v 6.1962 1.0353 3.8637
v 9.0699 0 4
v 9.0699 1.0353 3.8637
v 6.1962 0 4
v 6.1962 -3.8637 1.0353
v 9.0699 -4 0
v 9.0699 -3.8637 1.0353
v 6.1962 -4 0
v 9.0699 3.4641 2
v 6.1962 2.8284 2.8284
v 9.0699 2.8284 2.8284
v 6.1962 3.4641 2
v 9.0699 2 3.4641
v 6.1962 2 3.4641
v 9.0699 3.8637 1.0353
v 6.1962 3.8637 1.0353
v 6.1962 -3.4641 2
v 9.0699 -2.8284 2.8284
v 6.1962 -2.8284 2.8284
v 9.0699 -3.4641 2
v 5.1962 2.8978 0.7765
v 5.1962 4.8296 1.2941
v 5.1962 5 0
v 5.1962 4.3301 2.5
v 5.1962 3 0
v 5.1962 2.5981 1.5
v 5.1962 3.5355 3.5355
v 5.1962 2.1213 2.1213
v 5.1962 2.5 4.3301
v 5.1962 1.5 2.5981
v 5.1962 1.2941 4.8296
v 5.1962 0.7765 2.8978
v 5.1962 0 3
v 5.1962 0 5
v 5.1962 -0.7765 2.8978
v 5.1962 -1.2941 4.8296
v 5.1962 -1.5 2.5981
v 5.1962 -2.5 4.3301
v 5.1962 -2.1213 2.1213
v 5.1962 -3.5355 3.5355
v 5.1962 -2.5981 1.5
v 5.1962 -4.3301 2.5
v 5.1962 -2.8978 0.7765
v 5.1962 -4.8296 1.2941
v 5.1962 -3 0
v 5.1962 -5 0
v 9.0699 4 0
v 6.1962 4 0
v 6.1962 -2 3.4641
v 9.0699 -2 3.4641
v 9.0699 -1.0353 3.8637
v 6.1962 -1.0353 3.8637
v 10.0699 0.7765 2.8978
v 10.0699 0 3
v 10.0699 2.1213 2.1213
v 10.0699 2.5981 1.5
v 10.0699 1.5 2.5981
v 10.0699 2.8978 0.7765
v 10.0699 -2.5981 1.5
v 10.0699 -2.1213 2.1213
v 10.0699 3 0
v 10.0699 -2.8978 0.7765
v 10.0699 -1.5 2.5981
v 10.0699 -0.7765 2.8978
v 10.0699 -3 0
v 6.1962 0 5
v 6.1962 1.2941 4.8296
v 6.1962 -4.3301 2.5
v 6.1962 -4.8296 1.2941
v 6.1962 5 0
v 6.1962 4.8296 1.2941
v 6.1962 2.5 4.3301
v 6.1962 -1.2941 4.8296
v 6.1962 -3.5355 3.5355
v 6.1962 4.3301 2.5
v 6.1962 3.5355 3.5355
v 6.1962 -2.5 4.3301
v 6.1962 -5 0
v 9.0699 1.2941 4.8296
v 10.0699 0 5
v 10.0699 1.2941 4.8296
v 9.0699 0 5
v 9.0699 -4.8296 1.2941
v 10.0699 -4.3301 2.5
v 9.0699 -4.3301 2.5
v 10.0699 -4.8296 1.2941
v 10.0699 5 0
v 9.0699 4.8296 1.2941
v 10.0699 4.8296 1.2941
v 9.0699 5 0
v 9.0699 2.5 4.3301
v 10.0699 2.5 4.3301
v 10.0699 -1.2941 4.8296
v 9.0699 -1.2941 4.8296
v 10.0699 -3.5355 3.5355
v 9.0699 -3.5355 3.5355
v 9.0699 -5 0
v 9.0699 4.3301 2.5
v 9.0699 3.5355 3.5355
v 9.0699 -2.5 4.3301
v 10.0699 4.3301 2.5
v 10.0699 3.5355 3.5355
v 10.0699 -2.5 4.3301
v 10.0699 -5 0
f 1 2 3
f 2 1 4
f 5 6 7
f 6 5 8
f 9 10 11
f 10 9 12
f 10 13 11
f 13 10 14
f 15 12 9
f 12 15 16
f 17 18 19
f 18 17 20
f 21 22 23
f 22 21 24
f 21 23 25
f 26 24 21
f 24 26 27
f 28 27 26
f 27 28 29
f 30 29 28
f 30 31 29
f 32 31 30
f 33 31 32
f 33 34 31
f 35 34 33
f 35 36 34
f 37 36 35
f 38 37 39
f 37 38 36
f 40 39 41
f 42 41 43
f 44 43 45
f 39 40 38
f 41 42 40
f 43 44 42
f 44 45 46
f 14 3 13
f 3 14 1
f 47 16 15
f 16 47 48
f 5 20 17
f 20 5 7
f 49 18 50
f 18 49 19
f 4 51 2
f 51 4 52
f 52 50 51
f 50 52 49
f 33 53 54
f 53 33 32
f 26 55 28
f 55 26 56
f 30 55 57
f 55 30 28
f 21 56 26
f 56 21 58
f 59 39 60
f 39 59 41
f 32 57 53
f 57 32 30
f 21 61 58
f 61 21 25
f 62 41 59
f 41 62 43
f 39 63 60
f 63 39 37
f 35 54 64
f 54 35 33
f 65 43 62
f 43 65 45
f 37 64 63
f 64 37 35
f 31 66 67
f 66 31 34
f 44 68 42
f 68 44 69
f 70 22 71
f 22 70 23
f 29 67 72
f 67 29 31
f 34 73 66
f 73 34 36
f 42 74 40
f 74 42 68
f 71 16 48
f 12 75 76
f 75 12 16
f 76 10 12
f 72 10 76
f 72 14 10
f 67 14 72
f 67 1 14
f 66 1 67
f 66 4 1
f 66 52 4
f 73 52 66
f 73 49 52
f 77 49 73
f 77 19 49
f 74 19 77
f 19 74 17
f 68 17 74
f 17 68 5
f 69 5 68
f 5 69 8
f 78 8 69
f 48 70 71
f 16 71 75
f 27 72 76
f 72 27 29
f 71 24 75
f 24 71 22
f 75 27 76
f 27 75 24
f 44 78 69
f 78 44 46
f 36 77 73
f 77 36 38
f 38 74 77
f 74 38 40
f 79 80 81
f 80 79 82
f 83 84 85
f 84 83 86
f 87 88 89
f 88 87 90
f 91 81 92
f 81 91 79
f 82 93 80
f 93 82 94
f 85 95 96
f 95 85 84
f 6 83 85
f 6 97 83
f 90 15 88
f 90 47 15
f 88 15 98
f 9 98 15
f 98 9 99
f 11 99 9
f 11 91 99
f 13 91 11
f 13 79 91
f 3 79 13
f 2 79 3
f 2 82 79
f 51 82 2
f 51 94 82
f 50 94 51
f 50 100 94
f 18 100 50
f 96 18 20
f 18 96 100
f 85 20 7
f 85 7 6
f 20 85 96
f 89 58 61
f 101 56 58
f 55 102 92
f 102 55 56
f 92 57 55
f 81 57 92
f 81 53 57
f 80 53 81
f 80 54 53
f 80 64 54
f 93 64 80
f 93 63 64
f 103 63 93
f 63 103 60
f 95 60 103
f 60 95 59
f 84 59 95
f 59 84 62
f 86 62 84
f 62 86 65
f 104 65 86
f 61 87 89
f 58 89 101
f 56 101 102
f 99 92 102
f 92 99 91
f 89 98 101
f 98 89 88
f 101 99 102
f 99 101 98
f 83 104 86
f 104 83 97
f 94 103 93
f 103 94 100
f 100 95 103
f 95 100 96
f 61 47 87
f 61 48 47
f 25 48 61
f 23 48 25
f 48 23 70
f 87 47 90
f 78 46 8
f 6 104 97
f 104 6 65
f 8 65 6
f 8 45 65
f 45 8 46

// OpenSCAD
// file: ../build_environments.scad
// build_environments.scad: modules to build level sections
//

module pool(diameter=10.0, wall_height=2.0, step_width=3.0, connections=[])
{
    difference() {
        union() {
        difference() {
            cylinder(h=0.5,r1=diameter+step_width,r2=diameter+step_width,$fn=48);
            translate([0,0,-0.1])
                cylinder(h=0.7,r1=diameter,r2=diameter,$fn=48);
        }
        difference() {
            cylinder(h=wall_height,r1=diameter+step_width+1.0,r2=diameter+step_width+1.0,$fn=48);
            translate([0,0,-0.1])
                cylinder(h=wall_height+0.2,r1=diameter+step_width,r2=diameter+step_width,$fn=48);
        }
        }
    
        for (c = connections)
        {
            rotate([0,90,0]) {
                angle = atan2(c[1],c[0]);
                rotate([-angle,0,0]) {
                    cylinder(h=diameter+5.0,r1=c[2],r2=c[2],$fn=48);
                }
            }
        }
    }
}

module straight(length=10.0, width=2.0, dy1=0.0, dy2=0.0, dz=0.0)
{
    dims = [0, 0, 0, 0, 0, (dz/length)];
    matrix = [
        [ 1, dims[0], dims[1], 0 ],
        [ dims[2], 1, dims[4], 0 ],
        [ dims[5], dims[3], 1, 0 ],
        [ 0, 0, 0, 1 ]
    ];
    multmatrix(matrix)
    difference() {
        translate([dy1,0,0])
        union() {
            rotate([0,90,0]) {
                difference() {
                    cylinder(h=(length-dy1-dy2),r1=width+1.0,r2=width+1.0,$fn=24);
                    translate([0,0,-0.1])
                        cylinder(h=(length-dy1-dy2+0.2),r1=width,r2=width,$fn=24);
                }
                difference() {
                    cylinder(h=1.0,r1=width+2.0,r2=width+2.0,$fn=24);
                    translate([0,0,-0.1])
                        cylinder(h=1.2,r1=width,r2=width,$fn=24);
                }
                translate([0,0,(length-dy1-dy2)-1.0]) {
                    difference() {
                        cylinder(h=1.0,r1=width+2.0,r2=width+2.0,$fn=24);
                        translate([0,0,-0.1])
                            cylinder(h=1.2,r1=width,r2=width,$fn=24);
                    }
                }
            }
        }
        translate([0,0,-(2*width+4.0)/2])
            cube([3*length,3*length,2*width+4.0],center=true);
    }
}

module curve(p0=[0,0], center=[0,0], dir=1, angle=0.0, width=2.0)
{
    radius = sqrt((p0[0]-center[0])*(p0[0]-center[0]) + (p0[1]-center[1])*(p0[1]-center[1]));
    if (dir == 0) {
        difference() {
            rotate([0,0,-90])
            difference() {
                rotate_extrude(angle = angle, convexity = 10, $fn=32)
                    translate([radius, 0, 0])
                        circle(r = width+1.0,$fn=24);
                rotate([0,0,-1.0])
                    rotate_extrude(angle = angle+2.0, convexity = 10, $fn=32)
                        translate([radius, 0, 0])
                            circle(r = width,$fn=24);
            }
            translate([0,0,-(2*width+4.0)/2])
                cube([5*radius,5*radius,2*width+4.0],center=true);
        }
    }
    else {
        difference() {
            rotate([0,0,90])
            difference() {
                rotate_extrude(angle = -angle, convexity = 10, $fn=32)
                    translate([radius, 0, 0])
                        circle(r = width+1.0,$fn=24);
                rotate([0,0,1.0])
                    rotate_extrude(angle = -angle-2.0, convexity = 10, $fn=32)
                        translate([radius, 0, 0])
                            circle(r = width,$fn=24);
            }
            translate([0,0,-(2*width+4.0)/2])
                cube([5*radius,5*radius,2*width+4.0],center=true);
        }
    }

}

// test pool
//pool(diameter=12.0000, wall_height=3.0000, step_width=3.0000, connections=[[0.0000,-26.0000,2.0000], [23.6074,0.0000,2.0000]]);

// test straight, slope
//straight(length=26.0000, width=2.0000, dy1=11.8322, dy2=6.7082, dz=0.0000);
//straight(length=29.1549, width=12.0000, dy1=0.0000, dy2=0.0000, dz=-15.0000);

// test curve
//curve(p0=[23.6074, 0.0000], center=[23.6074, 5.0000], dir=0, angle=60.1011, width=2.0000);
//curve(p0=[33.6426, 12.4219], center=[37.9771, 9.9295], dir=1, angle=120.4627, width=2.0000);
// main file
use <../build_environments.scad>;
straight(length=10.0699, width=3.0000, dy1=5.1962, dy2=0.0000, dz=0.0000);
